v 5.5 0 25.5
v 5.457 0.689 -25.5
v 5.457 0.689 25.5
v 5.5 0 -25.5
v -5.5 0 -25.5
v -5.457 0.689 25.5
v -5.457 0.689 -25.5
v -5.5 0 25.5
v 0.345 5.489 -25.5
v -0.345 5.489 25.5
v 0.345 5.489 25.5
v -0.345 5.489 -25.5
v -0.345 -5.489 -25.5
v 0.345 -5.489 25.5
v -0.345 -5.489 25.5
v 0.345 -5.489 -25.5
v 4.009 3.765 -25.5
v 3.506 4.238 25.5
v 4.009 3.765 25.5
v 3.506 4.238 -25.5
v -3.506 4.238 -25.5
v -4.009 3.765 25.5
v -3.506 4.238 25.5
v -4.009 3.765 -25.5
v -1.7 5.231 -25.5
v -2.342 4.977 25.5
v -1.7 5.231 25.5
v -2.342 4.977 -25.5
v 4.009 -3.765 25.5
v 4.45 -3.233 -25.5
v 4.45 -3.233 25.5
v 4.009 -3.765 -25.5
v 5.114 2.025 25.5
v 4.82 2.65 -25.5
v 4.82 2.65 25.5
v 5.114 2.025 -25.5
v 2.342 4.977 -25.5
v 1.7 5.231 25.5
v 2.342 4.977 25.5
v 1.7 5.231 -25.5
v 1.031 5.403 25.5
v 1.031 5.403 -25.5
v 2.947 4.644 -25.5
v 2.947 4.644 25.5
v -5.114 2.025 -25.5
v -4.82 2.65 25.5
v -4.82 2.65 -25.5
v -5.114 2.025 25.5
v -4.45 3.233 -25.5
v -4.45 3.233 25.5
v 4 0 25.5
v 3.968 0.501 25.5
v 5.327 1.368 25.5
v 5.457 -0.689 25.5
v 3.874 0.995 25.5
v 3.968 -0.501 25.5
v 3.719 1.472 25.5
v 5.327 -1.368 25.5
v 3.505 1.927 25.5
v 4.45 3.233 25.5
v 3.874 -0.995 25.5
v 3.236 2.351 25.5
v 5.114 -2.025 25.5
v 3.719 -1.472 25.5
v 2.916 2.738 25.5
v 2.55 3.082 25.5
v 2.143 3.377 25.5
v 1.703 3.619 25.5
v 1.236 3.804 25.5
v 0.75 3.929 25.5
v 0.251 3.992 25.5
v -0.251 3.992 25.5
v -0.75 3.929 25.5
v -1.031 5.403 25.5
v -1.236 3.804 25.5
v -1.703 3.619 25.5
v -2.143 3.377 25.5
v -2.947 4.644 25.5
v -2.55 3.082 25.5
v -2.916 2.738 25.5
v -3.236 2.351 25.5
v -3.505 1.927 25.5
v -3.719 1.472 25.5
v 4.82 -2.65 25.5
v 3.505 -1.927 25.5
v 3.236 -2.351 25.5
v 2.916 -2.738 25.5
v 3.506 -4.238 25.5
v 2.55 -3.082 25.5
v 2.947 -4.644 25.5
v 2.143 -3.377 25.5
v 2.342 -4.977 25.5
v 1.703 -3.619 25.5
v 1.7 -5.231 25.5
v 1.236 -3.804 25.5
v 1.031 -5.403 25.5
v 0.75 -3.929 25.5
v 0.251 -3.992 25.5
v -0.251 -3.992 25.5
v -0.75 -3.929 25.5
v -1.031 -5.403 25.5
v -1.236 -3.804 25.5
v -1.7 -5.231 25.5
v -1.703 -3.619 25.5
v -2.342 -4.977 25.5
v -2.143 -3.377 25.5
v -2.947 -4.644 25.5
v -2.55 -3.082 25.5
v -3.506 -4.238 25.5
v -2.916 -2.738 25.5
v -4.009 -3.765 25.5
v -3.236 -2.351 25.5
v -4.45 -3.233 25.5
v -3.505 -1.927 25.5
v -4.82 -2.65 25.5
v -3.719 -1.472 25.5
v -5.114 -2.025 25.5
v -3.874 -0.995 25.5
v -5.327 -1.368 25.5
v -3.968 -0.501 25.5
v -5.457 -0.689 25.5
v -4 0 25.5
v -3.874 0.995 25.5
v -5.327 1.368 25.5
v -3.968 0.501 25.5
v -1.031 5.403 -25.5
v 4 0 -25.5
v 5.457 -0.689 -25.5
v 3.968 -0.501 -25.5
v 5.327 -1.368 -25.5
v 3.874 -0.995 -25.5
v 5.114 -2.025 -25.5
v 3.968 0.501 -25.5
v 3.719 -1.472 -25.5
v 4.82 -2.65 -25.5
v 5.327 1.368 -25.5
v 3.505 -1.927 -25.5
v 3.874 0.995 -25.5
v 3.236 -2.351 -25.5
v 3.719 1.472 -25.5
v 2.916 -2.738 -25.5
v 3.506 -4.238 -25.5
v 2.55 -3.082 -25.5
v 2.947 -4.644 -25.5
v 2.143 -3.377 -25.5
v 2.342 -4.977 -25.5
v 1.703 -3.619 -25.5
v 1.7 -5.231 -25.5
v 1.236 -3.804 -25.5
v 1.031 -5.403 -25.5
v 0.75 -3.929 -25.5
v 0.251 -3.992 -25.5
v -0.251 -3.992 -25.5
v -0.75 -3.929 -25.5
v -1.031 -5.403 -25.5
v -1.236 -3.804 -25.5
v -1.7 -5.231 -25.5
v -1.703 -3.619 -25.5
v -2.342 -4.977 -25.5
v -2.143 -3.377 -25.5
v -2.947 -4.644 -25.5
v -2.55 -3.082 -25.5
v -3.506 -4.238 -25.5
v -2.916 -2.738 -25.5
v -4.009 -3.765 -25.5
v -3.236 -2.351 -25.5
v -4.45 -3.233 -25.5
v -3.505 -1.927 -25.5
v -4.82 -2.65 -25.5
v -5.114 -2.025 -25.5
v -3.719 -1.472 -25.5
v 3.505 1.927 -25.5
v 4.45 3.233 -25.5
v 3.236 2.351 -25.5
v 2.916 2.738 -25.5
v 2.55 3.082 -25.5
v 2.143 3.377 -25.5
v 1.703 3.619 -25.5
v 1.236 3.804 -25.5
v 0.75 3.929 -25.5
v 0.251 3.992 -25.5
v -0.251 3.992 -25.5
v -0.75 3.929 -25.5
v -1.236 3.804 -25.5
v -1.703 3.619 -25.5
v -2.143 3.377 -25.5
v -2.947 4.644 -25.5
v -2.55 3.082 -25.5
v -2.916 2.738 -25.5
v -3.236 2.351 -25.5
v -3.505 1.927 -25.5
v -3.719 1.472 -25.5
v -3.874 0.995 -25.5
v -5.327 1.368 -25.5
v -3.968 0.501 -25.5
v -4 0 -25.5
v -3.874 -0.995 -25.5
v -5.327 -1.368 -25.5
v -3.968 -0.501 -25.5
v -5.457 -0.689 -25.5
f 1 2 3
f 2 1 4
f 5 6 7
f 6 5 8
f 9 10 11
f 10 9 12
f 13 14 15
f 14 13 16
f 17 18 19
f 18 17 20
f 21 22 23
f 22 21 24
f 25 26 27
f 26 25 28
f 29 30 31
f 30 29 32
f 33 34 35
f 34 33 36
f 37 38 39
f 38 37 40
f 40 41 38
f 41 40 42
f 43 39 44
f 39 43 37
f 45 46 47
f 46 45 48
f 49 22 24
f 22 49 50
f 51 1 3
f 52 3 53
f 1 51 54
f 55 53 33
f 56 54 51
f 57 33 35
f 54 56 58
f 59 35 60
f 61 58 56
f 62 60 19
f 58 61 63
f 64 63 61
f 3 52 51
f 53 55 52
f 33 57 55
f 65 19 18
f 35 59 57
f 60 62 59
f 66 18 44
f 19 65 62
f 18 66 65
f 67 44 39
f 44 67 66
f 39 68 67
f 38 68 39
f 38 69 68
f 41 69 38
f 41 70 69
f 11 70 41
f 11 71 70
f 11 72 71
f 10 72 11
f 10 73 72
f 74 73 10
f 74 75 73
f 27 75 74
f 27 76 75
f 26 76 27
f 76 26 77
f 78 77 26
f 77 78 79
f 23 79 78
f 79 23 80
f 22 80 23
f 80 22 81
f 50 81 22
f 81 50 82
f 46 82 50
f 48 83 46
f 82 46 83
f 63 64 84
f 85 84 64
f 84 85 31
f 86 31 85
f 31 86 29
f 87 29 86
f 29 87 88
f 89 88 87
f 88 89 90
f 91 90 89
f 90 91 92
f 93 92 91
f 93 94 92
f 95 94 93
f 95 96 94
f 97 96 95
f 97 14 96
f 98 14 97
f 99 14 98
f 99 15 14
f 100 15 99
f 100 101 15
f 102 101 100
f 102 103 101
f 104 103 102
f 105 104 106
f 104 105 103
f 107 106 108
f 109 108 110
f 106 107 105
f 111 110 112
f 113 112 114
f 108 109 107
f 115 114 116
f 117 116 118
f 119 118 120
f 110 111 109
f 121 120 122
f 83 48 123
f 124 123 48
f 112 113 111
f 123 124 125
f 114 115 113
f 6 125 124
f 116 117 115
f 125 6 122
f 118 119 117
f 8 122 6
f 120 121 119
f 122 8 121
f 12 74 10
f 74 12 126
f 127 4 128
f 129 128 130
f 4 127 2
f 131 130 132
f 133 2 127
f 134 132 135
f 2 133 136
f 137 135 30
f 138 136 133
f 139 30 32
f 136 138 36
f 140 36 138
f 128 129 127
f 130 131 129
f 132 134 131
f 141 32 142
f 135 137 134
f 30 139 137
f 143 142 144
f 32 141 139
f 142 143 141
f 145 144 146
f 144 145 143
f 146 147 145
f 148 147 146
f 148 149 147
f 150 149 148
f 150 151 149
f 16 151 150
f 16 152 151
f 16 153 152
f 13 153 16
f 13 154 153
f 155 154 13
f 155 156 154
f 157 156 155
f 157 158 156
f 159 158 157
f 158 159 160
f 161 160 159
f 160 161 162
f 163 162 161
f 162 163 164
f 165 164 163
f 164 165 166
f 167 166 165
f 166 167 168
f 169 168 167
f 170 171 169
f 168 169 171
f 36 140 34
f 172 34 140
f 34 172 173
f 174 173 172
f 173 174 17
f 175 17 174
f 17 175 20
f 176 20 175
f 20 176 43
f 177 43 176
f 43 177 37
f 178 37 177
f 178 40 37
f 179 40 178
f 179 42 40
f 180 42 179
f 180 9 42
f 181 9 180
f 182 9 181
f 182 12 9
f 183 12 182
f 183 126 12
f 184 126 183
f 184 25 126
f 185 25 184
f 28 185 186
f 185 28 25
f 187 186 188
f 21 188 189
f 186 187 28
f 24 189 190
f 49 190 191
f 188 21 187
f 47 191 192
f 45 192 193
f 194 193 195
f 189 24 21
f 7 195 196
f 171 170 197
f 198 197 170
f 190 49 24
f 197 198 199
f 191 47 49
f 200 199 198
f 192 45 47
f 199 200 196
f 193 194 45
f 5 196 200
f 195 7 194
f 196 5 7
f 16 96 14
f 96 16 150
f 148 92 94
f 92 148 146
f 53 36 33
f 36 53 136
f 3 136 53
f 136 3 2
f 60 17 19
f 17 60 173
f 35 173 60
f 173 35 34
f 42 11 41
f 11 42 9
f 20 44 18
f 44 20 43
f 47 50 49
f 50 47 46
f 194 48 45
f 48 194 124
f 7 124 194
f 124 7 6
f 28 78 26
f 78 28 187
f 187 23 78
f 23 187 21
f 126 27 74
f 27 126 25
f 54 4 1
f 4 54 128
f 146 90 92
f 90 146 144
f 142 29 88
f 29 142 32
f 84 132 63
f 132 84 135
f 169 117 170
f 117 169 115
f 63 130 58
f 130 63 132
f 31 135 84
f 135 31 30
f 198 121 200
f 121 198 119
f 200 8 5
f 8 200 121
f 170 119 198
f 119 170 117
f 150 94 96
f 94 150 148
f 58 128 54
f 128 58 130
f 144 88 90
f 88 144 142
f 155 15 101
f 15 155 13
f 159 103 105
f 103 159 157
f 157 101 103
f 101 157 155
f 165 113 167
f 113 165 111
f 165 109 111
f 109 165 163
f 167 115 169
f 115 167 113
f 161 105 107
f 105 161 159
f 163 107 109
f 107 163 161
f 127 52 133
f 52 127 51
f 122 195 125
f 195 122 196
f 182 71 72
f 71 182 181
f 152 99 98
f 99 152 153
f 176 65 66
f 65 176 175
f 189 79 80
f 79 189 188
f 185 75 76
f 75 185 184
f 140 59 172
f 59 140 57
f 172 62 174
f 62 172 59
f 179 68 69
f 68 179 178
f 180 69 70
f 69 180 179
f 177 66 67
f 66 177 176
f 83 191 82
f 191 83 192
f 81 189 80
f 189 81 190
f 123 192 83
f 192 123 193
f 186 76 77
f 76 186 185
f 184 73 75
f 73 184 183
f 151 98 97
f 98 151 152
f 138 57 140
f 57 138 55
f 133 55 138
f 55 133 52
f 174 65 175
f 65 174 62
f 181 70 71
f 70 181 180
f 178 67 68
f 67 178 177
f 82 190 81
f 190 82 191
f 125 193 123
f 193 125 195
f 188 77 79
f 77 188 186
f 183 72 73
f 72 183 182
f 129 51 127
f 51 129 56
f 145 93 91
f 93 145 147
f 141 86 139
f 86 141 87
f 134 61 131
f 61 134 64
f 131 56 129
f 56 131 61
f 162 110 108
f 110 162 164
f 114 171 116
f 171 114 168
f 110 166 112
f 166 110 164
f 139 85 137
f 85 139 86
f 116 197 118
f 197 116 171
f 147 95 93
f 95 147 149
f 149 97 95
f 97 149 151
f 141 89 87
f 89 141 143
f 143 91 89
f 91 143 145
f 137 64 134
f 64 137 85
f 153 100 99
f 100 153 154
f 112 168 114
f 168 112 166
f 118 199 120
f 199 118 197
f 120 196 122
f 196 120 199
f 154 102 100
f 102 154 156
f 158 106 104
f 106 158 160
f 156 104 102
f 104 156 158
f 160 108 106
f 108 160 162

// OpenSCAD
$fn = 50;


difference() {
	union() {
		translate(v = [0, 0, -25.5000000000]) {
			cylinder(h = 51, r = 5.5000000000);
		}
	}
	union() {
		translate(v = [0, 0, -100.0000000000]) {
			cylinder(h = 200, r = 4);
		}
	}
}
